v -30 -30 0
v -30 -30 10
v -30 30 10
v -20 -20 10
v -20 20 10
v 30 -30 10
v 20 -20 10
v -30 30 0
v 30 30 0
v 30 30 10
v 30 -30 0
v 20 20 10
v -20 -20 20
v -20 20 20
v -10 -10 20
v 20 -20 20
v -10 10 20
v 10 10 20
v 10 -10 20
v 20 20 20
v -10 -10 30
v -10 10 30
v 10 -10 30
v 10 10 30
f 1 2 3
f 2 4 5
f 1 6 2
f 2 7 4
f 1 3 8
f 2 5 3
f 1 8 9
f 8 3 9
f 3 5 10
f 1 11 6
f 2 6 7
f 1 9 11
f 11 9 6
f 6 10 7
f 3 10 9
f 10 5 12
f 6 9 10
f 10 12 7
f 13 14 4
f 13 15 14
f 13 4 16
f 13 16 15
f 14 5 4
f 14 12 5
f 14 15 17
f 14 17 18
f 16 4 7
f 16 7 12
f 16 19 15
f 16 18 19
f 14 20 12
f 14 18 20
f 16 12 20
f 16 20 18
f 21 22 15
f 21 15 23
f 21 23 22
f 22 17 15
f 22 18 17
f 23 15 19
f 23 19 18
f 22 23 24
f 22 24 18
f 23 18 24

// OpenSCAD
// 3段の階段状ピラミッド
// 各段は中心を揃えて積み重ねる

height = 10;            // 各段の高さ
sizes  = [60, 40, 20];  // 各段の一辺の長さ（下から上へ）

module step(size, z_pos) {
    translate([0, 0, z_pos])
        cube([size, size, height], center = true);
}

for (i = [0 : len(sizes) - 1]) {
    step(sizes[i], height * i + height / 2);
}
